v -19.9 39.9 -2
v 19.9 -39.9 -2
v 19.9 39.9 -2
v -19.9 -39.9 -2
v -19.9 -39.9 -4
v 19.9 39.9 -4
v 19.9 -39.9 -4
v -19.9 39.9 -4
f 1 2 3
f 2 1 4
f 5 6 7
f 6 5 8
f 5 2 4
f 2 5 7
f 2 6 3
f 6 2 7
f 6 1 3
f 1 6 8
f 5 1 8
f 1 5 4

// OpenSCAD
/*
    straight one grid tile train tube track
*/
include <train_tube_track.scad>;

//straight_track_double_plug(grid, is_base = false);

base_grid(2*grid);
